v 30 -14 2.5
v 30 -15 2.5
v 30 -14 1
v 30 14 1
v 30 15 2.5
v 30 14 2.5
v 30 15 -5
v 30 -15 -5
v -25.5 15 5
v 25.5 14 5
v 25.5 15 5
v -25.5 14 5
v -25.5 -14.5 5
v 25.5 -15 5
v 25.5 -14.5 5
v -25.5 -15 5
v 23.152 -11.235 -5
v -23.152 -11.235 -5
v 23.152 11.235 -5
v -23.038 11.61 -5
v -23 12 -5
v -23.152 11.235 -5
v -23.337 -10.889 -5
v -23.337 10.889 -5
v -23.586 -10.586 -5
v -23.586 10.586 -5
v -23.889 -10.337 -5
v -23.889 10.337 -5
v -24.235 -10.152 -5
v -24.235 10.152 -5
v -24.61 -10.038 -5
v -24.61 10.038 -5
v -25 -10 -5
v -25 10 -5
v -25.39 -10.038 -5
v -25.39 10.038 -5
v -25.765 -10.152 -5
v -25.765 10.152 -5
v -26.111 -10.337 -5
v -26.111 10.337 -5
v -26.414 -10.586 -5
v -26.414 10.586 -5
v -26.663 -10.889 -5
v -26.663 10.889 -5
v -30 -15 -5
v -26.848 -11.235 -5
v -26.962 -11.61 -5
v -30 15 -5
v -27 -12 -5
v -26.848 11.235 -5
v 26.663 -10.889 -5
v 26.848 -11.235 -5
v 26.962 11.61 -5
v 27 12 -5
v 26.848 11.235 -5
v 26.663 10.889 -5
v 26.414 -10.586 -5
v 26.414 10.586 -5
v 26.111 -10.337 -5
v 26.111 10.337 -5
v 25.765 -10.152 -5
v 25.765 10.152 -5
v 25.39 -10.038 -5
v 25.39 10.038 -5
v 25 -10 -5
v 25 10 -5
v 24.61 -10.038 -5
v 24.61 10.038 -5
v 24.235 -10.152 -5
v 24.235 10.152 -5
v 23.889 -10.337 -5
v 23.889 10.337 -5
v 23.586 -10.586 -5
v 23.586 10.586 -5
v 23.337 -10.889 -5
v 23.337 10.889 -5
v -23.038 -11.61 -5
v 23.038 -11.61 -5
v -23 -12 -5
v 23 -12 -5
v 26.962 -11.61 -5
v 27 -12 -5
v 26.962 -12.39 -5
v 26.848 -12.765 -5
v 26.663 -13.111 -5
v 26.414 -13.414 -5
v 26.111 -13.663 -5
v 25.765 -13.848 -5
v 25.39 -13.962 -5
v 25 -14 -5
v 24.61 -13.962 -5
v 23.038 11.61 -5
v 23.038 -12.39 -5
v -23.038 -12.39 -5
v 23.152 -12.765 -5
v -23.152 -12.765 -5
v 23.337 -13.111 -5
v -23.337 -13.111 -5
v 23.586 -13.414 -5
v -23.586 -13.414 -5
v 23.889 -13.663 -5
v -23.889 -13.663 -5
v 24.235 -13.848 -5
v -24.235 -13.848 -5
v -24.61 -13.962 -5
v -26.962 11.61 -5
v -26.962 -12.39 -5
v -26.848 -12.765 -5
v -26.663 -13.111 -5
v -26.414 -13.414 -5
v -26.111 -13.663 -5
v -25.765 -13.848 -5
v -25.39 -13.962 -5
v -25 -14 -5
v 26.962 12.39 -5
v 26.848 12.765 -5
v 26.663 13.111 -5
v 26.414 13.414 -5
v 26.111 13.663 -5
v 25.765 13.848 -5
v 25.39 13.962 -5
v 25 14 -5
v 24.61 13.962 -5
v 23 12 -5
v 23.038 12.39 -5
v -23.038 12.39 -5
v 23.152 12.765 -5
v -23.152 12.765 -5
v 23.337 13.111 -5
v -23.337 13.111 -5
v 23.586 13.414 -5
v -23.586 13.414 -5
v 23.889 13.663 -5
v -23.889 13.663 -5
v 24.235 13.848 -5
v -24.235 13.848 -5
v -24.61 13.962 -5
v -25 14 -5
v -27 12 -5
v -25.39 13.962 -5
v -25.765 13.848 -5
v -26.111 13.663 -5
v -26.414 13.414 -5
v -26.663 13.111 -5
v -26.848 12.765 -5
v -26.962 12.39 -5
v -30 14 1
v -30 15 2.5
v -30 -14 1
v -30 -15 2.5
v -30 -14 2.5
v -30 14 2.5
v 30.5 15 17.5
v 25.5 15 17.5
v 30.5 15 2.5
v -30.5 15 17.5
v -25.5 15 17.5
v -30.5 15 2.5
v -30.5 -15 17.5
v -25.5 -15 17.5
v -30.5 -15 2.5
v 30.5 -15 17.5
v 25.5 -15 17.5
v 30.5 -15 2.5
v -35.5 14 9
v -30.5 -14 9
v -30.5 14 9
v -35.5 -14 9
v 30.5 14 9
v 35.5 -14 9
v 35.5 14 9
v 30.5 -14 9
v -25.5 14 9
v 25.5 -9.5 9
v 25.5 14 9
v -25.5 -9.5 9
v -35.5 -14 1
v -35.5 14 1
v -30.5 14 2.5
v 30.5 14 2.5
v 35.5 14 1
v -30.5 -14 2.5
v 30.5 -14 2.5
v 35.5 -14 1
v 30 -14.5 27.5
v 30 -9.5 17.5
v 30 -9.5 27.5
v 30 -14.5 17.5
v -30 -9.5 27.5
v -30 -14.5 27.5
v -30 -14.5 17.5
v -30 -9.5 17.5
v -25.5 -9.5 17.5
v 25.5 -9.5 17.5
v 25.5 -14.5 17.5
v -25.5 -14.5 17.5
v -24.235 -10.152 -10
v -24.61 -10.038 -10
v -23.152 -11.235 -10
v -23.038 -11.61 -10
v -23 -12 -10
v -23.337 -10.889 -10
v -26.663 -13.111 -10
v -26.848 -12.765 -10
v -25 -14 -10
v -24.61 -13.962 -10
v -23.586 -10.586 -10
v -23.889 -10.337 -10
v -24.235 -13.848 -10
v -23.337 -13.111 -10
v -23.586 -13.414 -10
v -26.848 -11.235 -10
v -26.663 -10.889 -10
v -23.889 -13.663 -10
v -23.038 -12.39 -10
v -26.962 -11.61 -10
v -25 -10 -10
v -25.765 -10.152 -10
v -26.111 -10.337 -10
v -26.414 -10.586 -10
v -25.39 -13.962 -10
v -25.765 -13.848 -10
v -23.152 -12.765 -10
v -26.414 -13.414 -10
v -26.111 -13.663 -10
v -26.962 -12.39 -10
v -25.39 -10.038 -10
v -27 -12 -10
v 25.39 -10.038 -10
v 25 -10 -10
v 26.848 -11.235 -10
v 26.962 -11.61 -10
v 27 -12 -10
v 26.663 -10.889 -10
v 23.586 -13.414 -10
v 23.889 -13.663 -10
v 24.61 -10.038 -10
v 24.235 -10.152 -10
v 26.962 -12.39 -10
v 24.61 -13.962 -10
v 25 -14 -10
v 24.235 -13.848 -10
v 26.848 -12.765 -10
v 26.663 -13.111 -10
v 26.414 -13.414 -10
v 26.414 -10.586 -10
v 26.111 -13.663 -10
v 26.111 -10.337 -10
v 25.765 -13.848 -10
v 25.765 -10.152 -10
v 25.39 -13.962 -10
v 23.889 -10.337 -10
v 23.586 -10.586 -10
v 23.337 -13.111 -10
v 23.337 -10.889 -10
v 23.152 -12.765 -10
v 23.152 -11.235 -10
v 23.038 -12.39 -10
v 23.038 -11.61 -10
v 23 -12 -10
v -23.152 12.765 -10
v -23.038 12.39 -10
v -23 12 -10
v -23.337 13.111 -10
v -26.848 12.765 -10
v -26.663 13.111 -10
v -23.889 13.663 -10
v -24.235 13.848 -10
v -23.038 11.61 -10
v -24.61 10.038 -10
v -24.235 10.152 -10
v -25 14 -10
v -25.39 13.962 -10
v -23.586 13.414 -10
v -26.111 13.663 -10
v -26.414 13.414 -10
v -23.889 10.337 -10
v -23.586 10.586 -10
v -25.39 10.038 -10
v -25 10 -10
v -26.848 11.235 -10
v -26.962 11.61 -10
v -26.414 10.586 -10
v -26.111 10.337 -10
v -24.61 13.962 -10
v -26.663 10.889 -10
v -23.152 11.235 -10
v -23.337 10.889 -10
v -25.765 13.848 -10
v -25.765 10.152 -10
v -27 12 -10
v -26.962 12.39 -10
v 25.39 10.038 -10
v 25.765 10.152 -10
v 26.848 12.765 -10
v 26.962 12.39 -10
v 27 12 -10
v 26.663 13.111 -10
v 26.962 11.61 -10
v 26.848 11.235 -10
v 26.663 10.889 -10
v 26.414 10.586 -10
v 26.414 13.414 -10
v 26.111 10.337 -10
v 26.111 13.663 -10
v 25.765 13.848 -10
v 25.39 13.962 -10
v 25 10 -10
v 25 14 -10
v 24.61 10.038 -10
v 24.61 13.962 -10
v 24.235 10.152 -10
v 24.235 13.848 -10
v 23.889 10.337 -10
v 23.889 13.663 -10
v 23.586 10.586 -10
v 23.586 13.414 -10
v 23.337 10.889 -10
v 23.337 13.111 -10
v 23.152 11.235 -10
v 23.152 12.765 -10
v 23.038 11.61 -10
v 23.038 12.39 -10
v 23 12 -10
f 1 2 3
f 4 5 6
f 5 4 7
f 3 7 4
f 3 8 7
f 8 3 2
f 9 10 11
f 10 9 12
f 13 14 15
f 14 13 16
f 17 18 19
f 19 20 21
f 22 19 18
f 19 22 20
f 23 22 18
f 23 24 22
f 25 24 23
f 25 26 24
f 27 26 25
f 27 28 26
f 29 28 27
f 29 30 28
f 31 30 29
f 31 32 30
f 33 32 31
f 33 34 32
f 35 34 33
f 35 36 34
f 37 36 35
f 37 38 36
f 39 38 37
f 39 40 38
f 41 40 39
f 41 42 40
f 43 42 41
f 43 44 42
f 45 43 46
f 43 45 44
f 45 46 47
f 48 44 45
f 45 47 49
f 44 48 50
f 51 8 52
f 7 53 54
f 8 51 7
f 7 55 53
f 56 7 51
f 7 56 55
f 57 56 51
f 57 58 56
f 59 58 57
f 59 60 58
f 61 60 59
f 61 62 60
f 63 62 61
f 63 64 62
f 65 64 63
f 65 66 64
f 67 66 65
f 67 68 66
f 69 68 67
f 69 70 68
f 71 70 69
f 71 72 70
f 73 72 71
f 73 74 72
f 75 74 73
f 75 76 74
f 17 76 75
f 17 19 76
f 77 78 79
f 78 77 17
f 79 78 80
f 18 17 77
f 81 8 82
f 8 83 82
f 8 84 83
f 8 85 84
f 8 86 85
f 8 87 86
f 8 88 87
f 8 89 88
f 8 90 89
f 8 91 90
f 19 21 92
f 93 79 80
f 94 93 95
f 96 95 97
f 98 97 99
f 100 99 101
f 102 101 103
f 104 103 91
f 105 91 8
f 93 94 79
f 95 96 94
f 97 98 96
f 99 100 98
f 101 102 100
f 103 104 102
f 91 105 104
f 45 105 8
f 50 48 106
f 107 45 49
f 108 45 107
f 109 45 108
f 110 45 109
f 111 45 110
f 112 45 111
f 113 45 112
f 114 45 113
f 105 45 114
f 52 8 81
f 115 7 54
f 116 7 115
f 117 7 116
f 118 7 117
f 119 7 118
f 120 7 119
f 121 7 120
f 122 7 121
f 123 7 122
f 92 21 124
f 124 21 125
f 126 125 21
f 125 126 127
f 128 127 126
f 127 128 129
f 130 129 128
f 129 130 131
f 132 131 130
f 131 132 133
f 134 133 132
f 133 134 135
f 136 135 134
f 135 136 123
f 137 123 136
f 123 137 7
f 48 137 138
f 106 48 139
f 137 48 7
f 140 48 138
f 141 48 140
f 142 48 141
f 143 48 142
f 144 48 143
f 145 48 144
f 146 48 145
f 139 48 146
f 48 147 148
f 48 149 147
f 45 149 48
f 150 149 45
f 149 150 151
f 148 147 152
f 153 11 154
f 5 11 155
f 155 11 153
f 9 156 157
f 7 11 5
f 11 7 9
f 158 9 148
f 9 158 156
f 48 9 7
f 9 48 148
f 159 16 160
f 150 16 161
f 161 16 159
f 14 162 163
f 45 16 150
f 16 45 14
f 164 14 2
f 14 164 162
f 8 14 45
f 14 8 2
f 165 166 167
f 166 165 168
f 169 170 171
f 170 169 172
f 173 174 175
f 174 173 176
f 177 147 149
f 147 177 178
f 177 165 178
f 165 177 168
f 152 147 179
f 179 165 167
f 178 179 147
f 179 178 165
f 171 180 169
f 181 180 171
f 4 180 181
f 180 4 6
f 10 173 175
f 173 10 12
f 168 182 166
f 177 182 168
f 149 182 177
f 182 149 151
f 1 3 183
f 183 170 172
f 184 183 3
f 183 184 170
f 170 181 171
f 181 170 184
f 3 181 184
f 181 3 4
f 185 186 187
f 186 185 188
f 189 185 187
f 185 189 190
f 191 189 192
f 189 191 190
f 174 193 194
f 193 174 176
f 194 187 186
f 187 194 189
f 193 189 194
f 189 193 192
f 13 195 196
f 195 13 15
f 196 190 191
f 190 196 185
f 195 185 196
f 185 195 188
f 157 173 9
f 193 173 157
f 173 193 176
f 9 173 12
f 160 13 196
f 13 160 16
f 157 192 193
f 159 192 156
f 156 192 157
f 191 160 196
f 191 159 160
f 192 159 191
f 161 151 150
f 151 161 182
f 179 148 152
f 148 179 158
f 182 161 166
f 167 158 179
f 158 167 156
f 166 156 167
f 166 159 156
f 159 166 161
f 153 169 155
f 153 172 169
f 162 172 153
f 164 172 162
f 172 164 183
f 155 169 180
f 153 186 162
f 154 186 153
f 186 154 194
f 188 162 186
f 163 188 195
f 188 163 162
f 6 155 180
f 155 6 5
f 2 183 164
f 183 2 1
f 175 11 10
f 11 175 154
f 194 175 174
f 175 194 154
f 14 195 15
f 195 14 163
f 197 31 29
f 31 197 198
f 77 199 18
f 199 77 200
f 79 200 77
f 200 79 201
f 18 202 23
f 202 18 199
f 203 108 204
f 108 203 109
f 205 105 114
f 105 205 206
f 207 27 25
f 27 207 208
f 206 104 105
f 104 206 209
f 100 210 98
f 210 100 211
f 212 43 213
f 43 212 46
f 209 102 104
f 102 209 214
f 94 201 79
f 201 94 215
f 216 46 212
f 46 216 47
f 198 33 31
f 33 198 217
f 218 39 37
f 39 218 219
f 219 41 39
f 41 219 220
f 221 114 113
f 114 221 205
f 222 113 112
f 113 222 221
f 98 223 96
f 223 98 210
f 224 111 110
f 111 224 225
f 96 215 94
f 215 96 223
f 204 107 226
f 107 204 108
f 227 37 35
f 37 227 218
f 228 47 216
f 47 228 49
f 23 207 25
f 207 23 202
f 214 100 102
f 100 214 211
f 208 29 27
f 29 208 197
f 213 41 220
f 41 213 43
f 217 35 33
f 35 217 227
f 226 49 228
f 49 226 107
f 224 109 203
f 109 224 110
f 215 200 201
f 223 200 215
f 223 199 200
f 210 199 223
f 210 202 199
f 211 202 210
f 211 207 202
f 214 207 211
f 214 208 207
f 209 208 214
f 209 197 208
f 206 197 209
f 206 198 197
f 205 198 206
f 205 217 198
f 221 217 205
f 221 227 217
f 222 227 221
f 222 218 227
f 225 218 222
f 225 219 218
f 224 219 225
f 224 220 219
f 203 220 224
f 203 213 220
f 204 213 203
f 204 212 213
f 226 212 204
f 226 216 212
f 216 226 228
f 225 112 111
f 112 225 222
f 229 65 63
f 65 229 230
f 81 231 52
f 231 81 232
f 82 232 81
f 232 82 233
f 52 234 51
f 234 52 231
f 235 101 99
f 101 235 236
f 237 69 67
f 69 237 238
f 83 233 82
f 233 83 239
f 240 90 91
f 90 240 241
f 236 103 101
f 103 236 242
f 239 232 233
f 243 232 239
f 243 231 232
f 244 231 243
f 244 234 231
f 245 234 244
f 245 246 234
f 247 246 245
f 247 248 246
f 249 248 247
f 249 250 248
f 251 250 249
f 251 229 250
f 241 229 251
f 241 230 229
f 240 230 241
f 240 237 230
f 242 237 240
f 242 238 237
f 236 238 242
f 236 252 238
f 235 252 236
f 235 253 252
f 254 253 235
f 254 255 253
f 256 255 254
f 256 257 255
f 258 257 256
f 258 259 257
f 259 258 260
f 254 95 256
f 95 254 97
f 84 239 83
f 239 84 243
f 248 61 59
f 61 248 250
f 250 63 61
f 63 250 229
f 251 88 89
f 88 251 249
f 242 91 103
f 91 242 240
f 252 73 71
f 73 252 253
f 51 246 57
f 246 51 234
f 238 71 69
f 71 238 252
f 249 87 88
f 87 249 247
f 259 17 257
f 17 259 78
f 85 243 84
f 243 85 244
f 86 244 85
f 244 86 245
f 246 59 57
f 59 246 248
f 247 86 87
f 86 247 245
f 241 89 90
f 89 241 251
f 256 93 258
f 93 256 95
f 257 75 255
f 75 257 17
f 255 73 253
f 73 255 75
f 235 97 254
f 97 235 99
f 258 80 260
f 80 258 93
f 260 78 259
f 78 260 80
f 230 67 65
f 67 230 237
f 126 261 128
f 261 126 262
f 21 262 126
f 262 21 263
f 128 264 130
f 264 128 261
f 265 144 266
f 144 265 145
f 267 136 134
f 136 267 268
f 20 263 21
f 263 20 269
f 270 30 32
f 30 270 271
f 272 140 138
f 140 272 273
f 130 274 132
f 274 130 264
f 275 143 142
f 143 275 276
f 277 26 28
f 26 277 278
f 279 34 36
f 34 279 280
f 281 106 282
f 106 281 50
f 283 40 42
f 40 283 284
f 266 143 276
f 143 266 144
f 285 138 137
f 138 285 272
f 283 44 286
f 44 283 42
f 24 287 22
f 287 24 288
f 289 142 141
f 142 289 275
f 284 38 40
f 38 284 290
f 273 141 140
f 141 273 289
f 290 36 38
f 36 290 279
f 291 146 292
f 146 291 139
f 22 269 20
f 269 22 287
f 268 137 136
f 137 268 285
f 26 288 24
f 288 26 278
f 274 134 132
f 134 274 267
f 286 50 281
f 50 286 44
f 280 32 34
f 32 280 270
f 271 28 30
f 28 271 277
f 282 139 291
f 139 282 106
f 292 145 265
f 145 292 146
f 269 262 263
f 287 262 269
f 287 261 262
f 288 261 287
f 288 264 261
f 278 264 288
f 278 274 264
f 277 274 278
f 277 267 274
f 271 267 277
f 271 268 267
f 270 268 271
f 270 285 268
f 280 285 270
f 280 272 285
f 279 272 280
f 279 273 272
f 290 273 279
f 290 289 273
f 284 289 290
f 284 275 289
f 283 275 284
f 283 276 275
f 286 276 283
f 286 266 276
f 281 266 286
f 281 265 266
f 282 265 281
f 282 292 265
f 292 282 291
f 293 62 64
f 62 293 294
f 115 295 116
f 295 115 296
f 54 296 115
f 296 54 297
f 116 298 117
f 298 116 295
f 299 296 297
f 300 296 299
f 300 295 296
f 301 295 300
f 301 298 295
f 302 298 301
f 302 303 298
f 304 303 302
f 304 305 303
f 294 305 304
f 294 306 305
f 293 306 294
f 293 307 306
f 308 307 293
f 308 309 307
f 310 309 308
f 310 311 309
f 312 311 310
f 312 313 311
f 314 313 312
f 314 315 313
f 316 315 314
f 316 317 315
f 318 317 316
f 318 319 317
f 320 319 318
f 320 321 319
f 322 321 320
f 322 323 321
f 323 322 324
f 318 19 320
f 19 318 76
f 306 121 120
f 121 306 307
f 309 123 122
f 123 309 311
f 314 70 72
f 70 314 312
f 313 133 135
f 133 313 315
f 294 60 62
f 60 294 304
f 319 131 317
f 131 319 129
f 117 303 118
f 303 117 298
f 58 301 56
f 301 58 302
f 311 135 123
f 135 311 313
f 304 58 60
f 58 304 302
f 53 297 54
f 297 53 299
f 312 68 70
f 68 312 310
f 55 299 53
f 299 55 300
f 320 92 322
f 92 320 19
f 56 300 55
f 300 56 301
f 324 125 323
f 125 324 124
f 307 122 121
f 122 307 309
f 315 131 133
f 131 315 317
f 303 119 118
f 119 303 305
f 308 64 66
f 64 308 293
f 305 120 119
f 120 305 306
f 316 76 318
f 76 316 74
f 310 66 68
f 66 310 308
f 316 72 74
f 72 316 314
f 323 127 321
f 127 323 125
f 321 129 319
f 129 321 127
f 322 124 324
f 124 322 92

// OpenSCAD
$fn = 32;

// Sofa Base
cube([60, 30, 10], center = true);

// Sofa Seat Cushions (3 seats)
translate([-18, 0, 5], center = true)
    cube([35, 28, 8], center = true);
translate([0, 0, 5], center = true)
    cube([35, 28, 8], center = true);
translate([18, 0, 5], center = true)
    cube([35, 28, 8], center = true);

// Sofa Backrest
translate([0, -12, 15], center = true)
    cube([60, 5, 25], center = true);

// Armrests
translate([-28, 0, 10], center = true)
    cube([5, 30, 15], center = true);
translate([28, 0, 10], center = true)
    cube([5, 30, 15], center = true);

// Legs
translate([-25, -12, -10], center = true)
    cylinder(h = 10, r = 2);
translate([25, -12, -10], center = true)
    cylinder(h = 10, r = 2);
translate([-25, 12, -10], center = true)
    cylinder(h = 10, r = 2);
translate([25, 12, -10], center = true)
    cylinder(h = 10, r = 2);
